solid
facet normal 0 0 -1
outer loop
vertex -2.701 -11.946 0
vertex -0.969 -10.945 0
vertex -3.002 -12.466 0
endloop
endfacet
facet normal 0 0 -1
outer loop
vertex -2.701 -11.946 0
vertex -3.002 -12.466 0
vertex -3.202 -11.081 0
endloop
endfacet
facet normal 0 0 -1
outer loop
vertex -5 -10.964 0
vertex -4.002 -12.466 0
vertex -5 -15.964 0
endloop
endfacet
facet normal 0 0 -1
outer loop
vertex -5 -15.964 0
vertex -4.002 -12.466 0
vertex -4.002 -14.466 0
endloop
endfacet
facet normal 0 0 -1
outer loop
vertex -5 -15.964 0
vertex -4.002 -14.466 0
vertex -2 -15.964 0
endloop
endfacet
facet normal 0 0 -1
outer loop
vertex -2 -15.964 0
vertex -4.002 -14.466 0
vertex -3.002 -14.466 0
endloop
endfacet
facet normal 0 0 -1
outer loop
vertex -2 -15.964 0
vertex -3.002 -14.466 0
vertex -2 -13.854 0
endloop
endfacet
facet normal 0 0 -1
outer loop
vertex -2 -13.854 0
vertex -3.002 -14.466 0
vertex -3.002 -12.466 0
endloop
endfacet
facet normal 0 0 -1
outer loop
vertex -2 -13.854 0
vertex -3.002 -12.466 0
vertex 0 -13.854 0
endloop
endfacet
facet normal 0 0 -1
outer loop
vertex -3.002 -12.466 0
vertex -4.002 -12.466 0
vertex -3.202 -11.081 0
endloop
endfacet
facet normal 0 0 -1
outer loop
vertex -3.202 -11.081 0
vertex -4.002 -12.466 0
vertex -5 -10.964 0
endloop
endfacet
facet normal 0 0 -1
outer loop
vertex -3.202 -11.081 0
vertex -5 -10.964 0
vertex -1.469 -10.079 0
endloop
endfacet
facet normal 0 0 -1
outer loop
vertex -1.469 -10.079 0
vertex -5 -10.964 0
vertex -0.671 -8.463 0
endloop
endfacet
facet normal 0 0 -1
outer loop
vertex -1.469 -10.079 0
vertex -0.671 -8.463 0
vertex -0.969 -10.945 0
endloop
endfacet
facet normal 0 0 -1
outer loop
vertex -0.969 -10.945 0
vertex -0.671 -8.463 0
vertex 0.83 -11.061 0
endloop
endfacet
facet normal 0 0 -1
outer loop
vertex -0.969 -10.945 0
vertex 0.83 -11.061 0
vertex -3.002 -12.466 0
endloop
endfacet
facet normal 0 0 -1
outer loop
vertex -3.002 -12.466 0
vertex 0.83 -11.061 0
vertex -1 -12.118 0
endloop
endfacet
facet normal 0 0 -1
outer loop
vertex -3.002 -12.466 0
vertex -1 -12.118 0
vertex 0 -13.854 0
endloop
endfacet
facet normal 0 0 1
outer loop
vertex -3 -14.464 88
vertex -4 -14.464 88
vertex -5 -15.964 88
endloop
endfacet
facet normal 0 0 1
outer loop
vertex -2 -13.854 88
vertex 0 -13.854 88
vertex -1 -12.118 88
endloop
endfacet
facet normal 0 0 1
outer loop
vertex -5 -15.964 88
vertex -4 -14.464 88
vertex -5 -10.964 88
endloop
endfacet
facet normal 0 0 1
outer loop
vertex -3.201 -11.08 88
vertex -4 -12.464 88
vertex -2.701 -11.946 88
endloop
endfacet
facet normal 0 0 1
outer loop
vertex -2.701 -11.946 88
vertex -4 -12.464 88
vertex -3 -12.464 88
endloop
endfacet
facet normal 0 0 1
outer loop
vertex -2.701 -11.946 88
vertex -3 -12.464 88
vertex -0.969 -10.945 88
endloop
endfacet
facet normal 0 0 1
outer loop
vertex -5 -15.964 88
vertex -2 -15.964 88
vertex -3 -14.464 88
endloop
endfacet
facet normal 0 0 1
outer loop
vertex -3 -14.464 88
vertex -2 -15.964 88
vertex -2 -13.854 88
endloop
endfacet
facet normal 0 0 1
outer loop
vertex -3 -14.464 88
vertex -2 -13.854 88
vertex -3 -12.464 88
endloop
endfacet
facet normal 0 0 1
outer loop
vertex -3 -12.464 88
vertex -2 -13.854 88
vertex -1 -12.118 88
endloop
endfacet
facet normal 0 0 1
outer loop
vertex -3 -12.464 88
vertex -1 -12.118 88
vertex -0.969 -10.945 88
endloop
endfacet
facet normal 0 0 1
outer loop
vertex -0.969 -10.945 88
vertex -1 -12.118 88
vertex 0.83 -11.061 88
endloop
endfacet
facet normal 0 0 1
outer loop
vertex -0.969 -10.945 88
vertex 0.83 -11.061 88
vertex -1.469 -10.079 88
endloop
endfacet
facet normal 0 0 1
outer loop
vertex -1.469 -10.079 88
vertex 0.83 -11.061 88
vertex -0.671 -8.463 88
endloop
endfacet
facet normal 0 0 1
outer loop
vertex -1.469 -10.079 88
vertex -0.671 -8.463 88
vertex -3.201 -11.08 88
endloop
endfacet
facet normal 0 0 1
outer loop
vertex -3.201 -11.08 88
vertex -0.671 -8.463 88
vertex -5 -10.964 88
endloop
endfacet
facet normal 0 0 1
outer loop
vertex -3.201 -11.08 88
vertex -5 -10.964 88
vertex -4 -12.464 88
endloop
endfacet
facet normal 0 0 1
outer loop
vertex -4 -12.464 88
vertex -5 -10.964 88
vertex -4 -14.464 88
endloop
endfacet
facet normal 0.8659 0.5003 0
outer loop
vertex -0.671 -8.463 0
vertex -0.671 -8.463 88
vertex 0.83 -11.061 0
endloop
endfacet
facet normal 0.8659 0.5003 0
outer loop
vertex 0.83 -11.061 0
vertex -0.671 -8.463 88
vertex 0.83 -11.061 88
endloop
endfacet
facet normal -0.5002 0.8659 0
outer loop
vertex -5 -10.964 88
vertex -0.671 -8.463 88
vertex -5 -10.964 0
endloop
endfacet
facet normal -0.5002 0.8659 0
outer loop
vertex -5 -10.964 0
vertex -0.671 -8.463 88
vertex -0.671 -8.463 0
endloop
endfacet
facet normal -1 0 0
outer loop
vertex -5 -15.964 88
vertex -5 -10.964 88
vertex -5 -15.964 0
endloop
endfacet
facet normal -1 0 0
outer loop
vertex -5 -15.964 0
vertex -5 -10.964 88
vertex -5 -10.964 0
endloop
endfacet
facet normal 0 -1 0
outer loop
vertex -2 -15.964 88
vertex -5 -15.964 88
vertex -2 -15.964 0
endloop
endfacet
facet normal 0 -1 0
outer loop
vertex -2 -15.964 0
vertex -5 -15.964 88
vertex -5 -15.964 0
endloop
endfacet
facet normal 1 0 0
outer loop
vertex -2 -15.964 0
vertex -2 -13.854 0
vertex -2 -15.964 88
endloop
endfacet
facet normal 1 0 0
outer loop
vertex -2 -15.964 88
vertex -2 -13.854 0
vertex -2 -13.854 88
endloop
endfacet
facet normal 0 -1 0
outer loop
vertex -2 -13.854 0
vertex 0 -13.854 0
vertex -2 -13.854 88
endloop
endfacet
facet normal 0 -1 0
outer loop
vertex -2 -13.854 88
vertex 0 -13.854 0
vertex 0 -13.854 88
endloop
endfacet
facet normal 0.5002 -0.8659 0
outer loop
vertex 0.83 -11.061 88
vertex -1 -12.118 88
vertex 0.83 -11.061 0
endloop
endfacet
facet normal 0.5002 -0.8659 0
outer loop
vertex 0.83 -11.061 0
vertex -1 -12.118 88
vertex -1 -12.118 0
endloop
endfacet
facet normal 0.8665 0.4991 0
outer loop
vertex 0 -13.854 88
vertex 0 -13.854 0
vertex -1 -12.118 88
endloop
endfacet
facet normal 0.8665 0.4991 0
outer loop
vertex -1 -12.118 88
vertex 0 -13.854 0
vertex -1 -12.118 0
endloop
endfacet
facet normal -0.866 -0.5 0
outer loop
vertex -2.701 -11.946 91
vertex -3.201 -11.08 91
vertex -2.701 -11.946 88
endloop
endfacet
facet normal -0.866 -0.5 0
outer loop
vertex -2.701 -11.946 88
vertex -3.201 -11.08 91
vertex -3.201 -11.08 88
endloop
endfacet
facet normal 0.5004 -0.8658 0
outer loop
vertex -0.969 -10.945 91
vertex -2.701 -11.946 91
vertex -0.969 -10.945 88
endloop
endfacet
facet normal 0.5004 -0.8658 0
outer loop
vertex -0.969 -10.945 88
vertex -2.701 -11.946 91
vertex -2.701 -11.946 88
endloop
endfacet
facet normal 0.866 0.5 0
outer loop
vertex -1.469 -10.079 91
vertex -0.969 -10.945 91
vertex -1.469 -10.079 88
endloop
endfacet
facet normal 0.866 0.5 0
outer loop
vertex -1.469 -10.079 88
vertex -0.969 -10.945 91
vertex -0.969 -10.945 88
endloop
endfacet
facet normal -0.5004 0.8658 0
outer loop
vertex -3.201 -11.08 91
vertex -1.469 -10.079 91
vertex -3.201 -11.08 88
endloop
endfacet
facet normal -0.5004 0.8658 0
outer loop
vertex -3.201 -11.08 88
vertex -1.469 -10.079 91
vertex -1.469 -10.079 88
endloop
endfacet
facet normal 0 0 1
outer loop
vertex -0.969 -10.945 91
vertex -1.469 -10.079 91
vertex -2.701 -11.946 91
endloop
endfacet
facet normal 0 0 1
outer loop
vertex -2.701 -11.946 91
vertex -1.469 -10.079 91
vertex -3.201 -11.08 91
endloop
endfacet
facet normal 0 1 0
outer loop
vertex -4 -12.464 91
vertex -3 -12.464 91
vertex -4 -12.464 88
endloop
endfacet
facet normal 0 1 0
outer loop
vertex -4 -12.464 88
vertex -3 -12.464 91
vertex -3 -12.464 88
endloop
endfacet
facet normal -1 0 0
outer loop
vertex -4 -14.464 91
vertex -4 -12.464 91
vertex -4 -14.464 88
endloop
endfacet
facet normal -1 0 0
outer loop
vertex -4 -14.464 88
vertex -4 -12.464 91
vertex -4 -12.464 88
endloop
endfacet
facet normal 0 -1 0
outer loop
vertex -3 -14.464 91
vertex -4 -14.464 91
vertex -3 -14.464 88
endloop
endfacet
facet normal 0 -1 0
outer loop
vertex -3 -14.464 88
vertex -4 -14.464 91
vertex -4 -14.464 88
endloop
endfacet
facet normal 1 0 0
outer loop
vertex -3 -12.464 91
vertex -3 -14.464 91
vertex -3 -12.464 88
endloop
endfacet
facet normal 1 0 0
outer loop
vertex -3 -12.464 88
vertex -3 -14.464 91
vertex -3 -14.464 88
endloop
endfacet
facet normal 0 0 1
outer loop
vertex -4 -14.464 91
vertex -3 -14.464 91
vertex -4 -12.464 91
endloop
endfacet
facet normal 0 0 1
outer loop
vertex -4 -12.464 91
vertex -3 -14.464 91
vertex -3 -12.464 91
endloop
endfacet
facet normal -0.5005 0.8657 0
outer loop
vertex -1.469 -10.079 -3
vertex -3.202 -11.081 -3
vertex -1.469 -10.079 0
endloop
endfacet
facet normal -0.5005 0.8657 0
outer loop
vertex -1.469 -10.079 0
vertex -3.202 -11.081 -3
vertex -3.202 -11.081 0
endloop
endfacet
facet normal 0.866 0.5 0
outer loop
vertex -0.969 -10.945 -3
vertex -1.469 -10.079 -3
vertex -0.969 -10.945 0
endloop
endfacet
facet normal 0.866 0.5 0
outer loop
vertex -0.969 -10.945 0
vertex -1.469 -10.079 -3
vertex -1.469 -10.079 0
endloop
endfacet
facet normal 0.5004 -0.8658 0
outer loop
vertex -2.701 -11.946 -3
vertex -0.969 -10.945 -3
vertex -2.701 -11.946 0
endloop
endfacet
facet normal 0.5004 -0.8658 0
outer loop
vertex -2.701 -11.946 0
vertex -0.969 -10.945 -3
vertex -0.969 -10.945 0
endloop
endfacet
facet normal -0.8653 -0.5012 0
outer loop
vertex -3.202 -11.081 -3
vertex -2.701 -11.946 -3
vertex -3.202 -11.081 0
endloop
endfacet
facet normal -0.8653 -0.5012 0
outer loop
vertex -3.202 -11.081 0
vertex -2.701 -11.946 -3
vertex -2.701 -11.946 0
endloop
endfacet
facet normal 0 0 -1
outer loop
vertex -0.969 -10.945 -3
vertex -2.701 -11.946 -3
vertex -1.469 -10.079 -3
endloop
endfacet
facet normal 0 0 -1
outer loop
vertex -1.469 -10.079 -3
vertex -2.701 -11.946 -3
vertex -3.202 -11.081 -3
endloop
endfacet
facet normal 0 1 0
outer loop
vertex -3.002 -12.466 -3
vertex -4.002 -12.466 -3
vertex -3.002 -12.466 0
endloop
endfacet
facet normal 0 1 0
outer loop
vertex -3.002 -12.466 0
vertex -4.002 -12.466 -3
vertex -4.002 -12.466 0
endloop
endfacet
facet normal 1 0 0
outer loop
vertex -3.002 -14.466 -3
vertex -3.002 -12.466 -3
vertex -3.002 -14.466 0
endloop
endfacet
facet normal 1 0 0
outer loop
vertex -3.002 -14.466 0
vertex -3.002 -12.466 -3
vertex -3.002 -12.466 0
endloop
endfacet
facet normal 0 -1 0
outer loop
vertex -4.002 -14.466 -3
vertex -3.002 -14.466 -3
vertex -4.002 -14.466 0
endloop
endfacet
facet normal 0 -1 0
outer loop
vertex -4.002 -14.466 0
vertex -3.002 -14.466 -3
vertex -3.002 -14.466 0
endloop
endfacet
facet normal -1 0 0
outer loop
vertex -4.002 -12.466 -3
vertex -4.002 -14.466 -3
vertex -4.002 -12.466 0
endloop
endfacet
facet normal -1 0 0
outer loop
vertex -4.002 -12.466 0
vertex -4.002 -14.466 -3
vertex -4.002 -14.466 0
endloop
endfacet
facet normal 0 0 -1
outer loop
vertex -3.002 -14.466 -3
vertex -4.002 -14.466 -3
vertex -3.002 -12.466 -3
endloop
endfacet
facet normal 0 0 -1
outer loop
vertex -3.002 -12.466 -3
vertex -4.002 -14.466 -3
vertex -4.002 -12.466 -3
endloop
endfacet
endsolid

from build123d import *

# Parameters (mm, degrees)
BOSS_EXTRUDE1_DEPTH = 88
SKETCH3_W           = 2
SKETCH3_H           = 2.11
CUT_EXTRUDE1_DEPTH  = 88
CUT_EXTRUDE3_START  = -88
CUT_EXTRUDE3_DEPTH  = 88
SKETCH5_W           = 1
SKETCH5_H           = 2
BOSS_EXTRUDE2_DEPTH = 3
SKETCH6_W           = 1
SKETCH6_H           = 2
BOSS_EXTRUDE3_DEPTH = 3


# Read off the part's stored shape, not the designer's step: Cut-Extrude3
with BuildPart() as part:
    # Sketch1 → Boss-Extrude1 (new body)
    with BuildSketch(Plane.XY):
        Polygon((0, -15.964312624), (-5, -15.964312624), (-5, -10.964312624), (-0.670674615, -8.462924667), (1.830713193, -12.792250104), (0, -13.854312624), align=None)
    extrude(amount=BOSS_EXTRUDE1_DEPTH)

    # Sketch3 → Cut-Extrude1 (cut)
    with BuildSketch(Plane.XY.offset(88)):
        with Locations((-1, -14.909312624)):
            Rectangle(SKETCH3_W, SKETCH3_H)
    extrude(amount=-CUT_EXTRUDE1_DEPTH, mode=Mode.SUBTRACT)

    # Cut-Extrude3 outline → Cut-Extrude3 (cut)
    with BuildSketch(Plane.XY.offset(88).offset(CUT_EXTRUDE3_START)):
        Polygon((0.830158064, -11.060519919), (-1, -12.117944485), (0, -13.854312624), (1.830713193, -12.792250104), align=None)
    extrude(amount=CUT_EXTRUDE3_DEPTH, mode=Mode.SUBTRACT)

    # Sketch5 → Boss-Extrude2 (add)
    with BuildSketch(Plane.XY.offset(88)):
        Polygon((-3.200924793, -11.079761314), (-1.469194639, -10.079206131), (-0.968917048, -10.945071208), (-2.700647202, -11.945626391), align=None)
        with Locations((-3.5, -13.464312624)):
            Rectangle(SKETCH5_W, SKETCH5_H)
    extrude(amount=BOSS_EXTRUDE2_DEPTH)

    # Sketch6 → Boss-Extrude3 (add)
    with BuildSketch(Plane(origin=(0, 0, 0), x_dir=(-1, 0, 0), z_dir=(0, 0, -1))):
        Polygon((1.469194639, -10.079206131), (0.968917048, -10.945071208), (2.700647202, -11.945626391), (3.202395372, -11.080610981), align=None)
        with Locations((3.501951466, -13.465994689)):
            Rectangle(SKETCH6_W, SKETCH6_H)
    extrude(amount=BOSS_EXTRUDE3_DEPTH)


solid = part.part
